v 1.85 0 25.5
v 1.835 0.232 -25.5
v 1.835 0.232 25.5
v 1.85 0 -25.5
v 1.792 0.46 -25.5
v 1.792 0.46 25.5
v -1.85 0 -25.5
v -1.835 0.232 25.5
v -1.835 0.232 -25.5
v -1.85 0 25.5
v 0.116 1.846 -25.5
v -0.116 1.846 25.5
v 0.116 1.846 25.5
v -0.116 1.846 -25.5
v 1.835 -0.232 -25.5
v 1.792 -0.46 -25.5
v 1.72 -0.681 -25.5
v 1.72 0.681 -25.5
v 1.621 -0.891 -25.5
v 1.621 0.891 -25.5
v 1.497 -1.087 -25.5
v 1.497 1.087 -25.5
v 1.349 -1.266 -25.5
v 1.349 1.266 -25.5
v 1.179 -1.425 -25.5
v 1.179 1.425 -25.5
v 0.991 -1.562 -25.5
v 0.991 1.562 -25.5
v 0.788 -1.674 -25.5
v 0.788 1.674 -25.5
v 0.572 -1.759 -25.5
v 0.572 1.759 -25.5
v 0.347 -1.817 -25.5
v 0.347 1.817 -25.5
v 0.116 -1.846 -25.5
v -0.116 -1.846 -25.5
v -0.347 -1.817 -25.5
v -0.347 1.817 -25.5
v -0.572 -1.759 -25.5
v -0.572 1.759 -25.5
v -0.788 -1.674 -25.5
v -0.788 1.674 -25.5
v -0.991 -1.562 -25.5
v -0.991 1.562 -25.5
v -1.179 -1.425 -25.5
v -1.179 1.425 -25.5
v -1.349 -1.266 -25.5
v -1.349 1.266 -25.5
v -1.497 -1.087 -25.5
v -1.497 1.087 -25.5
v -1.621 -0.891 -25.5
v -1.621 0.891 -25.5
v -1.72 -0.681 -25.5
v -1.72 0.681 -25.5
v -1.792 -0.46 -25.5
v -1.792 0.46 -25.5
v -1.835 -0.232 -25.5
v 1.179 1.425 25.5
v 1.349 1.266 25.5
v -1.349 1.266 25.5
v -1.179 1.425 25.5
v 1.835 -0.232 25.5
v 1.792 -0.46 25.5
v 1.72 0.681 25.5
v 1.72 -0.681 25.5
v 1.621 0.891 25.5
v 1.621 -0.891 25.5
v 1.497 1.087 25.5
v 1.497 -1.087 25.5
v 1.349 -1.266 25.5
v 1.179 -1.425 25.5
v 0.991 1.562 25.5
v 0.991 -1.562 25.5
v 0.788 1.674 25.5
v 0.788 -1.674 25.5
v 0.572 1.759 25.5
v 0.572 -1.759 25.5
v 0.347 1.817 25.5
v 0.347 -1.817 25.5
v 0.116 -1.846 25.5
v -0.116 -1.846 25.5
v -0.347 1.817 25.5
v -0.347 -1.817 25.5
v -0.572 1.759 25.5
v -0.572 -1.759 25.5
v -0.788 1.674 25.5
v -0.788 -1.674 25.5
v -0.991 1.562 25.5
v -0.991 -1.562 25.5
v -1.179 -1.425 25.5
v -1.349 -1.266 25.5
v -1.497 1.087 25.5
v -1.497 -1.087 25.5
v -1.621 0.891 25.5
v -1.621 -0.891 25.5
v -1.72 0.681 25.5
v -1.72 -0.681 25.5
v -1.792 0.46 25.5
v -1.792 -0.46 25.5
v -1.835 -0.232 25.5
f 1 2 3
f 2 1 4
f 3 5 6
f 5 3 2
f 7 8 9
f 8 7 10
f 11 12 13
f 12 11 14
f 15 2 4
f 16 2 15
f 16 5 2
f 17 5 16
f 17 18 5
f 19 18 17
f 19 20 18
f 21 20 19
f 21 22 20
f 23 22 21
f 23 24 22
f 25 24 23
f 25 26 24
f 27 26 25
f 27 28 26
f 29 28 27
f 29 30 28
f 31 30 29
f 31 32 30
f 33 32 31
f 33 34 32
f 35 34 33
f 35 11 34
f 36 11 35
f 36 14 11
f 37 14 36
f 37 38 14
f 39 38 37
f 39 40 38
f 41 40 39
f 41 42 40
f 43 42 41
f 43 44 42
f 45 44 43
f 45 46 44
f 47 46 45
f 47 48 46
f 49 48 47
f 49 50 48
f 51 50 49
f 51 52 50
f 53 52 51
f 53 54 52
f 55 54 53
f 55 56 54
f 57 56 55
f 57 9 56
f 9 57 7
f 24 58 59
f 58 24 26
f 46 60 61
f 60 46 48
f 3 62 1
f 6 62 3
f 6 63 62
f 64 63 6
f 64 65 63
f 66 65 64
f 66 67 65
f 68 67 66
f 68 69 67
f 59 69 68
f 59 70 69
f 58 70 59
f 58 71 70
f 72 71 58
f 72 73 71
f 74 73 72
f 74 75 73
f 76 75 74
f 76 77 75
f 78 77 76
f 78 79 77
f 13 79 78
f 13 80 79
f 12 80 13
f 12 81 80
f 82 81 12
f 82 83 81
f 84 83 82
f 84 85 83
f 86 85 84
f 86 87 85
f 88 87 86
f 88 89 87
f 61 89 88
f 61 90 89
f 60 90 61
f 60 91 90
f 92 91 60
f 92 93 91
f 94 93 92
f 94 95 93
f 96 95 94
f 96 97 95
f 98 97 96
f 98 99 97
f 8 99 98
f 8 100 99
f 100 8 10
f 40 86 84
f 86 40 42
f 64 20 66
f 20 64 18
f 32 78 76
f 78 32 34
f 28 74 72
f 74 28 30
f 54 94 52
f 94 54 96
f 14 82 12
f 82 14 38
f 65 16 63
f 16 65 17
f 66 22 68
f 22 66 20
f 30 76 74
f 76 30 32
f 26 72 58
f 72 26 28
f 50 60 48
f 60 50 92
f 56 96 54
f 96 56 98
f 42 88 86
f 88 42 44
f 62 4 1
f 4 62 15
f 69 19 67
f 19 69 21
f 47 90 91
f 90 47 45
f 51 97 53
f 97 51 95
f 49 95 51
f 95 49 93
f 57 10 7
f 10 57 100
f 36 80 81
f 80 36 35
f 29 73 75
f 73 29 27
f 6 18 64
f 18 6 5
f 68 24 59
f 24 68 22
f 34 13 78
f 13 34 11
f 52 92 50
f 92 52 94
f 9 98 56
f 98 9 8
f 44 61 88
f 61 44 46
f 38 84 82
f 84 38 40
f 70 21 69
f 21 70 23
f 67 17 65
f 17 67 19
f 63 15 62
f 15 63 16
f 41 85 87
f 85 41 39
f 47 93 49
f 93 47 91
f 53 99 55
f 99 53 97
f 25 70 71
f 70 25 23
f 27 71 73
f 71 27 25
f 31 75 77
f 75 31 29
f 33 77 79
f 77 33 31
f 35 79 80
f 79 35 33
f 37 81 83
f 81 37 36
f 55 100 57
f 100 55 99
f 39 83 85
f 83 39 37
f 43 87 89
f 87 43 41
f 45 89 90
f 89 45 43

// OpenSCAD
$fn = 50;


difference() {
	union() {
		translate(v = [0, 0, -25.5000000000]) {
			cylinder(h = 51, r = 1.8500000000);
		}
	}
	union() {
		translate(v = [0, 0, -100.0000000000]) {
			cylinder(h = 200, r = 0);
		}
	}
}
